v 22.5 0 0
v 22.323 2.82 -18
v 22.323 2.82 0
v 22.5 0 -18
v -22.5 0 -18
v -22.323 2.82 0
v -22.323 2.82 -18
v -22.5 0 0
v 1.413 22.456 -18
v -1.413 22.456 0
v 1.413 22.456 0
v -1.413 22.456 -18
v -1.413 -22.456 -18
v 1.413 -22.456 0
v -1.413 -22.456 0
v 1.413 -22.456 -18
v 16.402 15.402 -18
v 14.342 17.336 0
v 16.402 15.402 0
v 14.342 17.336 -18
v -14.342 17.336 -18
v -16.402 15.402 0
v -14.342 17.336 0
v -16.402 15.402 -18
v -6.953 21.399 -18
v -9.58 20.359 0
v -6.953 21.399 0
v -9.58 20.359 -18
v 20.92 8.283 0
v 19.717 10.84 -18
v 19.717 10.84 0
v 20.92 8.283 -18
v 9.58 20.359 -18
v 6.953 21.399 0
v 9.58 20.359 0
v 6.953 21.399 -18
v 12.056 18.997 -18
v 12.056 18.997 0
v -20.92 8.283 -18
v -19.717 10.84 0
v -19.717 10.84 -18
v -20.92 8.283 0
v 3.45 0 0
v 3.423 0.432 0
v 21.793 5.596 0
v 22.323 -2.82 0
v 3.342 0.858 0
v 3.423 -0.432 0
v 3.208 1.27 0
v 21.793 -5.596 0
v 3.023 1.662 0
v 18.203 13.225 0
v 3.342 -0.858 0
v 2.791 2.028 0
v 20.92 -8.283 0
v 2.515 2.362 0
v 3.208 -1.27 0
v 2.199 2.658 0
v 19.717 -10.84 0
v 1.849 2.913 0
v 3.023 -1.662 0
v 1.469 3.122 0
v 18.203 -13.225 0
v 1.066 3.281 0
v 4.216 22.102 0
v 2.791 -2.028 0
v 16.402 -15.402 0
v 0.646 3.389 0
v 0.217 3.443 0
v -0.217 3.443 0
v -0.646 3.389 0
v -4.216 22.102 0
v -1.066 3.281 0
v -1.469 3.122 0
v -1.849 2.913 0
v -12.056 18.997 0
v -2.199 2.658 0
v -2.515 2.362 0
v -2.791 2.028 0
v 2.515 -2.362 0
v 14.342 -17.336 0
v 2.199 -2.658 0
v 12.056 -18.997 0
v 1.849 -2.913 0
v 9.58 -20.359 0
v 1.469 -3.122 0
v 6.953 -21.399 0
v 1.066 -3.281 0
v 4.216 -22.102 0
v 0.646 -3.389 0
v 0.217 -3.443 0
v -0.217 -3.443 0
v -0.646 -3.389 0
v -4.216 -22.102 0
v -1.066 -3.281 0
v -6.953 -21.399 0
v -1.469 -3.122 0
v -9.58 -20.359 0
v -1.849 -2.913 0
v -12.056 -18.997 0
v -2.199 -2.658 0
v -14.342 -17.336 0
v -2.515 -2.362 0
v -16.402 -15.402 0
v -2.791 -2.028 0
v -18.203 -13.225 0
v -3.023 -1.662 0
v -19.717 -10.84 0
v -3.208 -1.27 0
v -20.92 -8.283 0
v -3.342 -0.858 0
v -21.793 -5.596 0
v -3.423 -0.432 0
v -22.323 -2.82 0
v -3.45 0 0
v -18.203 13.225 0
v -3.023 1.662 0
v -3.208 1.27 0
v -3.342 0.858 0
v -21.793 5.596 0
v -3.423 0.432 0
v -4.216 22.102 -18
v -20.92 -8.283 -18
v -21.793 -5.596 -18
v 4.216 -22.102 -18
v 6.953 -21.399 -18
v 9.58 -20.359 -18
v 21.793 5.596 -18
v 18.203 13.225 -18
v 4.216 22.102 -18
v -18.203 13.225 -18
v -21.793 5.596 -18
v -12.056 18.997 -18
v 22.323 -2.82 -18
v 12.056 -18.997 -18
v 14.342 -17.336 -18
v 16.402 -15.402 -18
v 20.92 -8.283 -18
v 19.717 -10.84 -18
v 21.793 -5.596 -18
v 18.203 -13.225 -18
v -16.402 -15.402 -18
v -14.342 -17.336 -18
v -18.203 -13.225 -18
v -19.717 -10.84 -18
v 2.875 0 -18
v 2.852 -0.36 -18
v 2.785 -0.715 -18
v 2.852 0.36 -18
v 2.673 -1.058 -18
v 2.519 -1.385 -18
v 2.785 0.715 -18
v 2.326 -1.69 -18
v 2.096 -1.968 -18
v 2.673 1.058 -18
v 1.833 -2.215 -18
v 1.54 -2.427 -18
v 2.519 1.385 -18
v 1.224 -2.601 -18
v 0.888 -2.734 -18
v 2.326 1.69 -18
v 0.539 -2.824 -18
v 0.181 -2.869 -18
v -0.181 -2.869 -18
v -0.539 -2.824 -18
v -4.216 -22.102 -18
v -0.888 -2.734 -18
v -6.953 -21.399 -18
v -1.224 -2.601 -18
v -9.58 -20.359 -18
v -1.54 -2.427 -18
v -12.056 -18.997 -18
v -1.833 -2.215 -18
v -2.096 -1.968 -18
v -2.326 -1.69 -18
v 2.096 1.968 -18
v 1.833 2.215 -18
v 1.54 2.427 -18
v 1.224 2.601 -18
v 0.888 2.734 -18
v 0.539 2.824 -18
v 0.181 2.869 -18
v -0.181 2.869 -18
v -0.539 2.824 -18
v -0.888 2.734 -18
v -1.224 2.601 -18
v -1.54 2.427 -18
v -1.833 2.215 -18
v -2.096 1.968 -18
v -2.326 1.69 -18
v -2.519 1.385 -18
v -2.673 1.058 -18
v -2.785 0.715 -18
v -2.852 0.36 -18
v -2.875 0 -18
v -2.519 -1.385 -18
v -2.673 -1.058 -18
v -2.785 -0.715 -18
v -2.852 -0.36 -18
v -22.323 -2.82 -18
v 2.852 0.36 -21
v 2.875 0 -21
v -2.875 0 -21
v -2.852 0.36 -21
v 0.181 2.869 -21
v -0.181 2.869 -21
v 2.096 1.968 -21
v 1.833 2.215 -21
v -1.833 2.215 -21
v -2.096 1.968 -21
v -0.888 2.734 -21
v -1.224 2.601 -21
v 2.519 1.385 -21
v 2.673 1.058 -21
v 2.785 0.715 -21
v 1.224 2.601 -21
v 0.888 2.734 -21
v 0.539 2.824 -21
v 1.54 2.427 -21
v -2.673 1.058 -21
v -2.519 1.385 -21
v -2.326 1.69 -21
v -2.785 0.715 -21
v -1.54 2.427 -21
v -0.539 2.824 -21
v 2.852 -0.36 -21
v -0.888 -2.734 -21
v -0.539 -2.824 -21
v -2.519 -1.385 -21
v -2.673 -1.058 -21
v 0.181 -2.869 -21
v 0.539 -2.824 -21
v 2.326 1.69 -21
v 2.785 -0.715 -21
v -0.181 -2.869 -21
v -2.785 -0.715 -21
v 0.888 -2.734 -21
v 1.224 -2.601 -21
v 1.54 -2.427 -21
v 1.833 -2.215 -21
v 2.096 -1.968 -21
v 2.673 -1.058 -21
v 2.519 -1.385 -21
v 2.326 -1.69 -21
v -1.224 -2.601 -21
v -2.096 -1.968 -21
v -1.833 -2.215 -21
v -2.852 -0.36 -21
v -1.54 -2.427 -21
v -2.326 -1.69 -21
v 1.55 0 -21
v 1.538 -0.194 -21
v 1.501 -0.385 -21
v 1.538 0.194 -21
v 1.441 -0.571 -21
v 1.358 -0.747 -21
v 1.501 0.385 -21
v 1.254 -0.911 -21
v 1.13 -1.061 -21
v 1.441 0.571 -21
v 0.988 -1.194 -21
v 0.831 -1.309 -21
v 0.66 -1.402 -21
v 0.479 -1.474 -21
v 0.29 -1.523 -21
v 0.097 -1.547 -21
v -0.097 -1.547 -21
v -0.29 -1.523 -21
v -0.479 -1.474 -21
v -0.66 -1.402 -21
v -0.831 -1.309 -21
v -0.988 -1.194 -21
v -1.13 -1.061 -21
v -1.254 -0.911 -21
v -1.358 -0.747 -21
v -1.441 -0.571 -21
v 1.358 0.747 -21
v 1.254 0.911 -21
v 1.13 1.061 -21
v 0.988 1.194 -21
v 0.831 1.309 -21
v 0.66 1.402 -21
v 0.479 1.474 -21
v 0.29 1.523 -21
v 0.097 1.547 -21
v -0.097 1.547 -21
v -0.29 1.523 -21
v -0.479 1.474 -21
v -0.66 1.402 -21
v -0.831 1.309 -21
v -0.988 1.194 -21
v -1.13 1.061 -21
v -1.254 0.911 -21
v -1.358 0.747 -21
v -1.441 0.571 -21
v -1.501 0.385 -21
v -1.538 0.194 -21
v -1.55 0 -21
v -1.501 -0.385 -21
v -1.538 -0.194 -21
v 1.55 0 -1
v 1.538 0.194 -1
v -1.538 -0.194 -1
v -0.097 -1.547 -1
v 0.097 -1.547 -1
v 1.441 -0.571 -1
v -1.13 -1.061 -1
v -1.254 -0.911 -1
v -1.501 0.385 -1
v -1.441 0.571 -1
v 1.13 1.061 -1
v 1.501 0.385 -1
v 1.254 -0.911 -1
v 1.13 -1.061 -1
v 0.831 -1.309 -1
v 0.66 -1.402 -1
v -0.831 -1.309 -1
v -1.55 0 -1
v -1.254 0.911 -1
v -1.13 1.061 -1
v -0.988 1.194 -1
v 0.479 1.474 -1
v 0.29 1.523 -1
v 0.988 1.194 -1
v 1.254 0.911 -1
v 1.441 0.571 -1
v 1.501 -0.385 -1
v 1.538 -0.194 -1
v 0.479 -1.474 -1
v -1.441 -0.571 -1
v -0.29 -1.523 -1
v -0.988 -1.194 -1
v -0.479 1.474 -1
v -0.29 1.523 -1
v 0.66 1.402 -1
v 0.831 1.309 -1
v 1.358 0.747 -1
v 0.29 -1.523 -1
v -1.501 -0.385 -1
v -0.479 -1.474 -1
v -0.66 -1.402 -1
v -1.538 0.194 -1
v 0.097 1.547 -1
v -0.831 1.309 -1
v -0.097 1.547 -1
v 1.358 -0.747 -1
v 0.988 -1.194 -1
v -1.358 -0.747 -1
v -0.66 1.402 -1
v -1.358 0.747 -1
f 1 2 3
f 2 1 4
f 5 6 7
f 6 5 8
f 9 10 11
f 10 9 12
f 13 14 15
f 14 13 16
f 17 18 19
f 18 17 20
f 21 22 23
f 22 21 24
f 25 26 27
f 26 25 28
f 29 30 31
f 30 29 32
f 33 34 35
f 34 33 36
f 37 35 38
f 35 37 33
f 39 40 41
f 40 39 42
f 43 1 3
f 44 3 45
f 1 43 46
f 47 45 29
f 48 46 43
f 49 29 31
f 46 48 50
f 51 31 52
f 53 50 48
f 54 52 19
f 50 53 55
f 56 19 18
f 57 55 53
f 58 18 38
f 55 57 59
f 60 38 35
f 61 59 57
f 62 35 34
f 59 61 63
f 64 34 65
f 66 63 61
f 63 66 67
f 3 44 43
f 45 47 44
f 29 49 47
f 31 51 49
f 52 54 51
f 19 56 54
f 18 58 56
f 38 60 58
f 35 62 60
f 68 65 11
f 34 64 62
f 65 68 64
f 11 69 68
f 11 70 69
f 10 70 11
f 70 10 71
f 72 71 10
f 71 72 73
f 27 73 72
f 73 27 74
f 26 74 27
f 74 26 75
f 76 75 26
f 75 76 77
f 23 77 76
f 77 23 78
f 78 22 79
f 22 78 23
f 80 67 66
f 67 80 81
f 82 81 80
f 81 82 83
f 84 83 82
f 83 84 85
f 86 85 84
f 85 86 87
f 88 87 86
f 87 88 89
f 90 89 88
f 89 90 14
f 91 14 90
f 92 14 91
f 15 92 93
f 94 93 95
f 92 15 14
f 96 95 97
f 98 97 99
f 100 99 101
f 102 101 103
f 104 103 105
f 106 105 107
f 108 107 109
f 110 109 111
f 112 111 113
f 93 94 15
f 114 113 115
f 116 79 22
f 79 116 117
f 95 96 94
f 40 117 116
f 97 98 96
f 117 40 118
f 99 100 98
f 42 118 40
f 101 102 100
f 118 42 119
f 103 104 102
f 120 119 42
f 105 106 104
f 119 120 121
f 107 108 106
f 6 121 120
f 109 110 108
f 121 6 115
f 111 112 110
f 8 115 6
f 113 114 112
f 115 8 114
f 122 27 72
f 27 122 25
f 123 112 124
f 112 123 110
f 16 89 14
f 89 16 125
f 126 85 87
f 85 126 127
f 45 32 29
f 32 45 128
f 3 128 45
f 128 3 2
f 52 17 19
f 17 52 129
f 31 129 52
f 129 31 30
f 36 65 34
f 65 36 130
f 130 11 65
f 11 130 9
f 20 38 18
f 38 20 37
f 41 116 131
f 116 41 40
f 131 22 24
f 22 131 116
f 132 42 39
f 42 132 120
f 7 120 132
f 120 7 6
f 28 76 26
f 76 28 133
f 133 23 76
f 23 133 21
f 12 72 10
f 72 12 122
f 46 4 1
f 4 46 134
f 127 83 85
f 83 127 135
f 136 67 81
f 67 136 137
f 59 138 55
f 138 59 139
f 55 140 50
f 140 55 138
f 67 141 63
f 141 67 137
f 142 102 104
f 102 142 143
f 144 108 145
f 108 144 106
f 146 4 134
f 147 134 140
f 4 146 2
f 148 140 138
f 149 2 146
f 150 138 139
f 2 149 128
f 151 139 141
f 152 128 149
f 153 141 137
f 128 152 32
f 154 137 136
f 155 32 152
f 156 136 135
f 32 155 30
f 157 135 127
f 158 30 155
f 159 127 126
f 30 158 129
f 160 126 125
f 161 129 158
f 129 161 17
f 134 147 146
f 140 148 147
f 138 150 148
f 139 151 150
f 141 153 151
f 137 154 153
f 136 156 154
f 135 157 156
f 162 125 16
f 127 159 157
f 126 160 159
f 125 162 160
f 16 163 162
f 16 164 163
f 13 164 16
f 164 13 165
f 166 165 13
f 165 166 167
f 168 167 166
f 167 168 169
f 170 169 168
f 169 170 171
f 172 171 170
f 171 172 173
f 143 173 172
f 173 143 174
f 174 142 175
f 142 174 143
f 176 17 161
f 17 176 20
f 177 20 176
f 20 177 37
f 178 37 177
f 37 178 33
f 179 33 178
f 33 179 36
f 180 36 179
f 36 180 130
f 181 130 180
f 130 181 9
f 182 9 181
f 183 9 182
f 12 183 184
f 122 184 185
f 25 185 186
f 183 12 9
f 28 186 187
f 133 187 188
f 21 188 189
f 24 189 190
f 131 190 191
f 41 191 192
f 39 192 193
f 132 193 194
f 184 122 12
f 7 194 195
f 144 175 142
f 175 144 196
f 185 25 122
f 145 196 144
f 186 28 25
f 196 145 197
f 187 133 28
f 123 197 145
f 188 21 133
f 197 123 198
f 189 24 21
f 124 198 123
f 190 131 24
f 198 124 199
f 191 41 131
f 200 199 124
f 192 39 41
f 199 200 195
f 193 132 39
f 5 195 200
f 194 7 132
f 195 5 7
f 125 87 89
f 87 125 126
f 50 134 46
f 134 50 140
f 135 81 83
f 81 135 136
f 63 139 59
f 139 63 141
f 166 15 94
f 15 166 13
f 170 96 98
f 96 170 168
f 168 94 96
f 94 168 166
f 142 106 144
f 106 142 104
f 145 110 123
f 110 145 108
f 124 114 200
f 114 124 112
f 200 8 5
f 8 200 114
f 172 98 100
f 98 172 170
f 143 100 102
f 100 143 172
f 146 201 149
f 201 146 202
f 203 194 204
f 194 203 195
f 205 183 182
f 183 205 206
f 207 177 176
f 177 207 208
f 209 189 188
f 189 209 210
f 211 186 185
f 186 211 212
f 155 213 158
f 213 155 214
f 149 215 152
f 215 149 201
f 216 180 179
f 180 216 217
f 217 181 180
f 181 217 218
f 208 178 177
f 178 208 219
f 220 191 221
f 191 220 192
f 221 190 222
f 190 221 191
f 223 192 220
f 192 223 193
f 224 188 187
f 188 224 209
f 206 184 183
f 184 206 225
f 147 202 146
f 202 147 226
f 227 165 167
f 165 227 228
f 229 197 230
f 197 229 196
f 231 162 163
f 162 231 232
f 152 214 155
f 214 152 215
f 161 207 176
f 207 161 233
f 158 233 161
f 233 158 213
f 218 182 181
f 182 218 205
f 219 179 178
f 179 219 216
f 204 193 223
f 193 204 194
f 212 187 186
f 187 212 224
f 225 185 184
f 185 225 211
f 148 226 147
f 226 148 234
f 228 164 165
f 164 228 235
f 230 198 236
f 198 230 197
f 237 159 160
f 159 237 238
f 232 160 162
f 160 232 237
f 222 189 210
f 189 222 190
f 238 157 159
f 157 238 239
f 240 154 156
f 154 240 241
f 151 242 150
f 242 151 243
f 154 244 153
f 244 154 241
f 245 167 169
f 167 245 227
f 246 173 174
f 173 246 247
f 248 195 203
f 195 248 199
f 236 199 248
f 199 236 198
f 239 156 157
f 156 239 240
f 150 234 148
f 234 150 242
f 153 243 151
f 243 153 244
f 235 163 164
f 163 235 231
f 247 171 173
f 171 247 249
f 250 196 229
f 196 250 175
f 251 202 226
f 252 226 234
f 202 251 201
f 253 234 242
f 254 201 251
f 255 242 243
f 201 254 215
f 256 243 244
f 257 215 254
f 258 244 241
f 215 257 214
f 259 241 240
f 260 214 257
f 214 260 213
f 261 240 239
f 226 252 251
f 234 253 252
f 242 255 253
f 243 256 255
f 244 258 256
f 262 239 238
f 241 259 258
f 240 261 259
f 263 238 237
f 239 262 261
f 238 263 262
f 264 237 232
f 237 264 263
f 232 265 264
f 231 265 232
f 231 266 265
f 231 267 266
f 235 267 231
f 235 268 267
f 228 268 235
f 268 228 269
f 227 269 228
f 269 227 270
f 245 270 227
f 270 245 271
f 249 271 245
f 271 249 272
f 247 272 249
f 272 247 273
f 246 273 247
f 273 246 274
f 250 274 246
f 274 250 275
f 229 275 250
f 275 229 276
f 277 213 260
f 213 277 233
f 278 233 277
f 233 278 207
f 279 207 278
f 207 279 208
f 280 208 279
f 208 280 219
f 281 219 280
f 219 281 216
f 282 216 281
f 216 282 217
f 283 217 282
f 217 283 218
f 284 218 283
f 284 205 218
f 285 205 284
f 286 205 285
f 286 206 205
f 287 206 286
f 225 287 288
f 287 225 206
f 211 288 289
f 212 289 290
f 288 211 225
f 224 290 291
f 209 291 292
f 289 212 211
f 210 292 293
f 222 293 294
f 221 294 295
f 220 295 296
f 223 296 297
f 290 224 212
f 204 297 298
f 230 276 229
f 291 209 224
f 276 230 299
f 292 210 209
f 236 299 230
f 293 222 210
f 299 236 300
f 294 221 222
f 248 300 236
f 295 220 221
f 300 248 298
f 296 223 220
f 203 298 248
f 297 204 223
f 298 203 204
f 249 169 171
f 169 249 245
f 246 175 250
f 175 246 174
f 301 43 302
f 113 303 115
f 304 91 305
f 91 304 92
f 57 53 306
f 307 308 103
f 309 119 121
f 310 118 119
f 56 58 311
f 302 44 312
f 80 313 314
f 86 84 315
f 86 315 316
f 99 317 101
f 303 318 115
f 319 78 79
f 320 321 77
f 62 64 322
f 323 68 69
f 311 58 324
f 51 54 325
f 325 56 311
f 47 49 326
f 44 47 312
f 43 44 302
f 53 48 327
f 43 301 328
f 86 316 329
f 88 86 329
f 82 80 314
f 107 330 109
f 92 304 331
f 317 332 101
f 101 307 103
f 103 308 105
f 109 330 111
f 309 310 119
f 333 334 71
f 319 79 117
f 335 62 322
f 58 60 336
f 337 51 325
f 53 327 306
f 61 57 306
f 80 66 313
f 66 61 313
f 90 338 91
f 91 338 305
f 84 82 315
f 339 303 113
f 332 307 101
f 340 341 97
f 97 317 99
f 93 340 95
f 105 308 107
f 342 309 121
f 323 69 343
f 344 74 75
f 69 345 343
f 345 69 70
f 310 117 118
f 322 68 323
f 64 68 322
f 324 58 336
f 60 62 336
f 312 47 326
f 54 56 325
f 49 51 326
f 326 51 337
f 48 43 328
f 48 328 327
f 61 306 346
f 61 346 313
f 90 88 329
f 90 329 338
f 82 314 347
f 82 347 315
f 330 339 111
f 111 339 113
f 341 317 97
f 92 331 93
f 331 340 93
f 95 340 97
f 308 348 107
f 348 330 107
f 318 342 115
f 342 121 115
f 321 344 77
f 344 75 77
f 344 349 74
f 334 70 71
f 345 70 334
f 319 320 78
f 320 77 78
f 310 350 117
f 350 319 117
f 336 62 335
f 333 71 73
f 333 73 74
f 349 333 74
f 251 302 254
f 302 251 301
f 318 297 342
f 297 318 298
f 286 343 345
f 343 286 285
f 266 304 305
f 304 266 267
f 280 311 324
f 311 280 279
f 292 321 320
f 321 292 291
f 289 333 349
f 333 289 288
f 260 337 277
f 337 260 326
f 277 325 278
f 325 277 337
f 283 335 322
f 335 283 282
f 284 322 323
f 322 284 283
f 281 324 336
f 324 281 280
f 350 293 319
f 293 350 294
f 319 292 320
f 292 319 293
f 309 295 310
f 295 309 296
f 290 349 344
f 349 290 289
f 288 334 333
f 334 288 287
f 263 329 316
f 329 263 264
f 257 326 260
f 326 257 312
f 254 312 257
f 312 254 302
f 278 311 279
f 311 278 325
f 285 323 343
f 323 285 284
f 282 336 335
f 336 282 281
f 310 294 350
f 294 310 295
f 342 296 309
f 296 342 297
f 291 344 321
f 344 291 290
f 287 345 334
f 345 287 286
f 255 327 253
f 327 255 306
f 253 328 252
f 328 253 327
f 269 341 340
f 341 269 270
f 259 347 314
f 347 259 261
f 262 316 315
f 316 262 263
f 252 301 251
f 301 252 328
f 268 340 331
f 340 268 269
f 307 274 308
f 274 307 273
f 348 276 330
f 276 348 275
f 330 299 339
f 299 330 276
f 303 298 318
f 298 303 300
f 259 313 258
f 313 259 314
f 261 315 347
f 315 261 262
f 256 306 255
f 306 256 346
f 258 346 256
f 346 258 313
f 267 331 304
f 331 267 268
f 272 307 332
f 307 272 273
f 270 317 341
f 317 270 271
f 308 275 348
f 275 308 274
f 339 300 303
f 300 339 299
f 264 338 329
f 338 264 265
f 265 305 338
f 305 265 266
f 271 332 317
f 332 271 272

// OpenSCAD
$fn = 50;


difference() {
	union() {
		translate(v = [0, 0, -18.0000000000]) {
			cylinder(h = 18, r = 22.5000000000);
		}
		#translate(v = [0, 0, -21.0000000000]) {
			cylinder(h = 21, r = 2.8750000000);
		}
	}
	union() {
		translate(v = [0, 0, 0]) {
			rotate(a = [0, 0, 0]) {
				difference() {
					union() {
						translate(v = [0, 0, -21.0000000000]) {
							cylinder(h = 21, r = 1.2500000000);
						}
						translate(v = [0, 0, -1.0000000000]) {
							cylinder(h = 1.0000000000, r1 = 1.5500000000, r2 = 3.4500000000);
						}
						translate(v = [0, 0, -21.0000000000]) {
							cylinder(h = 21, r = 1.5500000000);
						}
						translate(v = [0, 0, -21.0000000000]) {
							cylinder(h = 21, r = 1.2500000000);
						}
					}
					union();
				}
			}
		}
	}
}
